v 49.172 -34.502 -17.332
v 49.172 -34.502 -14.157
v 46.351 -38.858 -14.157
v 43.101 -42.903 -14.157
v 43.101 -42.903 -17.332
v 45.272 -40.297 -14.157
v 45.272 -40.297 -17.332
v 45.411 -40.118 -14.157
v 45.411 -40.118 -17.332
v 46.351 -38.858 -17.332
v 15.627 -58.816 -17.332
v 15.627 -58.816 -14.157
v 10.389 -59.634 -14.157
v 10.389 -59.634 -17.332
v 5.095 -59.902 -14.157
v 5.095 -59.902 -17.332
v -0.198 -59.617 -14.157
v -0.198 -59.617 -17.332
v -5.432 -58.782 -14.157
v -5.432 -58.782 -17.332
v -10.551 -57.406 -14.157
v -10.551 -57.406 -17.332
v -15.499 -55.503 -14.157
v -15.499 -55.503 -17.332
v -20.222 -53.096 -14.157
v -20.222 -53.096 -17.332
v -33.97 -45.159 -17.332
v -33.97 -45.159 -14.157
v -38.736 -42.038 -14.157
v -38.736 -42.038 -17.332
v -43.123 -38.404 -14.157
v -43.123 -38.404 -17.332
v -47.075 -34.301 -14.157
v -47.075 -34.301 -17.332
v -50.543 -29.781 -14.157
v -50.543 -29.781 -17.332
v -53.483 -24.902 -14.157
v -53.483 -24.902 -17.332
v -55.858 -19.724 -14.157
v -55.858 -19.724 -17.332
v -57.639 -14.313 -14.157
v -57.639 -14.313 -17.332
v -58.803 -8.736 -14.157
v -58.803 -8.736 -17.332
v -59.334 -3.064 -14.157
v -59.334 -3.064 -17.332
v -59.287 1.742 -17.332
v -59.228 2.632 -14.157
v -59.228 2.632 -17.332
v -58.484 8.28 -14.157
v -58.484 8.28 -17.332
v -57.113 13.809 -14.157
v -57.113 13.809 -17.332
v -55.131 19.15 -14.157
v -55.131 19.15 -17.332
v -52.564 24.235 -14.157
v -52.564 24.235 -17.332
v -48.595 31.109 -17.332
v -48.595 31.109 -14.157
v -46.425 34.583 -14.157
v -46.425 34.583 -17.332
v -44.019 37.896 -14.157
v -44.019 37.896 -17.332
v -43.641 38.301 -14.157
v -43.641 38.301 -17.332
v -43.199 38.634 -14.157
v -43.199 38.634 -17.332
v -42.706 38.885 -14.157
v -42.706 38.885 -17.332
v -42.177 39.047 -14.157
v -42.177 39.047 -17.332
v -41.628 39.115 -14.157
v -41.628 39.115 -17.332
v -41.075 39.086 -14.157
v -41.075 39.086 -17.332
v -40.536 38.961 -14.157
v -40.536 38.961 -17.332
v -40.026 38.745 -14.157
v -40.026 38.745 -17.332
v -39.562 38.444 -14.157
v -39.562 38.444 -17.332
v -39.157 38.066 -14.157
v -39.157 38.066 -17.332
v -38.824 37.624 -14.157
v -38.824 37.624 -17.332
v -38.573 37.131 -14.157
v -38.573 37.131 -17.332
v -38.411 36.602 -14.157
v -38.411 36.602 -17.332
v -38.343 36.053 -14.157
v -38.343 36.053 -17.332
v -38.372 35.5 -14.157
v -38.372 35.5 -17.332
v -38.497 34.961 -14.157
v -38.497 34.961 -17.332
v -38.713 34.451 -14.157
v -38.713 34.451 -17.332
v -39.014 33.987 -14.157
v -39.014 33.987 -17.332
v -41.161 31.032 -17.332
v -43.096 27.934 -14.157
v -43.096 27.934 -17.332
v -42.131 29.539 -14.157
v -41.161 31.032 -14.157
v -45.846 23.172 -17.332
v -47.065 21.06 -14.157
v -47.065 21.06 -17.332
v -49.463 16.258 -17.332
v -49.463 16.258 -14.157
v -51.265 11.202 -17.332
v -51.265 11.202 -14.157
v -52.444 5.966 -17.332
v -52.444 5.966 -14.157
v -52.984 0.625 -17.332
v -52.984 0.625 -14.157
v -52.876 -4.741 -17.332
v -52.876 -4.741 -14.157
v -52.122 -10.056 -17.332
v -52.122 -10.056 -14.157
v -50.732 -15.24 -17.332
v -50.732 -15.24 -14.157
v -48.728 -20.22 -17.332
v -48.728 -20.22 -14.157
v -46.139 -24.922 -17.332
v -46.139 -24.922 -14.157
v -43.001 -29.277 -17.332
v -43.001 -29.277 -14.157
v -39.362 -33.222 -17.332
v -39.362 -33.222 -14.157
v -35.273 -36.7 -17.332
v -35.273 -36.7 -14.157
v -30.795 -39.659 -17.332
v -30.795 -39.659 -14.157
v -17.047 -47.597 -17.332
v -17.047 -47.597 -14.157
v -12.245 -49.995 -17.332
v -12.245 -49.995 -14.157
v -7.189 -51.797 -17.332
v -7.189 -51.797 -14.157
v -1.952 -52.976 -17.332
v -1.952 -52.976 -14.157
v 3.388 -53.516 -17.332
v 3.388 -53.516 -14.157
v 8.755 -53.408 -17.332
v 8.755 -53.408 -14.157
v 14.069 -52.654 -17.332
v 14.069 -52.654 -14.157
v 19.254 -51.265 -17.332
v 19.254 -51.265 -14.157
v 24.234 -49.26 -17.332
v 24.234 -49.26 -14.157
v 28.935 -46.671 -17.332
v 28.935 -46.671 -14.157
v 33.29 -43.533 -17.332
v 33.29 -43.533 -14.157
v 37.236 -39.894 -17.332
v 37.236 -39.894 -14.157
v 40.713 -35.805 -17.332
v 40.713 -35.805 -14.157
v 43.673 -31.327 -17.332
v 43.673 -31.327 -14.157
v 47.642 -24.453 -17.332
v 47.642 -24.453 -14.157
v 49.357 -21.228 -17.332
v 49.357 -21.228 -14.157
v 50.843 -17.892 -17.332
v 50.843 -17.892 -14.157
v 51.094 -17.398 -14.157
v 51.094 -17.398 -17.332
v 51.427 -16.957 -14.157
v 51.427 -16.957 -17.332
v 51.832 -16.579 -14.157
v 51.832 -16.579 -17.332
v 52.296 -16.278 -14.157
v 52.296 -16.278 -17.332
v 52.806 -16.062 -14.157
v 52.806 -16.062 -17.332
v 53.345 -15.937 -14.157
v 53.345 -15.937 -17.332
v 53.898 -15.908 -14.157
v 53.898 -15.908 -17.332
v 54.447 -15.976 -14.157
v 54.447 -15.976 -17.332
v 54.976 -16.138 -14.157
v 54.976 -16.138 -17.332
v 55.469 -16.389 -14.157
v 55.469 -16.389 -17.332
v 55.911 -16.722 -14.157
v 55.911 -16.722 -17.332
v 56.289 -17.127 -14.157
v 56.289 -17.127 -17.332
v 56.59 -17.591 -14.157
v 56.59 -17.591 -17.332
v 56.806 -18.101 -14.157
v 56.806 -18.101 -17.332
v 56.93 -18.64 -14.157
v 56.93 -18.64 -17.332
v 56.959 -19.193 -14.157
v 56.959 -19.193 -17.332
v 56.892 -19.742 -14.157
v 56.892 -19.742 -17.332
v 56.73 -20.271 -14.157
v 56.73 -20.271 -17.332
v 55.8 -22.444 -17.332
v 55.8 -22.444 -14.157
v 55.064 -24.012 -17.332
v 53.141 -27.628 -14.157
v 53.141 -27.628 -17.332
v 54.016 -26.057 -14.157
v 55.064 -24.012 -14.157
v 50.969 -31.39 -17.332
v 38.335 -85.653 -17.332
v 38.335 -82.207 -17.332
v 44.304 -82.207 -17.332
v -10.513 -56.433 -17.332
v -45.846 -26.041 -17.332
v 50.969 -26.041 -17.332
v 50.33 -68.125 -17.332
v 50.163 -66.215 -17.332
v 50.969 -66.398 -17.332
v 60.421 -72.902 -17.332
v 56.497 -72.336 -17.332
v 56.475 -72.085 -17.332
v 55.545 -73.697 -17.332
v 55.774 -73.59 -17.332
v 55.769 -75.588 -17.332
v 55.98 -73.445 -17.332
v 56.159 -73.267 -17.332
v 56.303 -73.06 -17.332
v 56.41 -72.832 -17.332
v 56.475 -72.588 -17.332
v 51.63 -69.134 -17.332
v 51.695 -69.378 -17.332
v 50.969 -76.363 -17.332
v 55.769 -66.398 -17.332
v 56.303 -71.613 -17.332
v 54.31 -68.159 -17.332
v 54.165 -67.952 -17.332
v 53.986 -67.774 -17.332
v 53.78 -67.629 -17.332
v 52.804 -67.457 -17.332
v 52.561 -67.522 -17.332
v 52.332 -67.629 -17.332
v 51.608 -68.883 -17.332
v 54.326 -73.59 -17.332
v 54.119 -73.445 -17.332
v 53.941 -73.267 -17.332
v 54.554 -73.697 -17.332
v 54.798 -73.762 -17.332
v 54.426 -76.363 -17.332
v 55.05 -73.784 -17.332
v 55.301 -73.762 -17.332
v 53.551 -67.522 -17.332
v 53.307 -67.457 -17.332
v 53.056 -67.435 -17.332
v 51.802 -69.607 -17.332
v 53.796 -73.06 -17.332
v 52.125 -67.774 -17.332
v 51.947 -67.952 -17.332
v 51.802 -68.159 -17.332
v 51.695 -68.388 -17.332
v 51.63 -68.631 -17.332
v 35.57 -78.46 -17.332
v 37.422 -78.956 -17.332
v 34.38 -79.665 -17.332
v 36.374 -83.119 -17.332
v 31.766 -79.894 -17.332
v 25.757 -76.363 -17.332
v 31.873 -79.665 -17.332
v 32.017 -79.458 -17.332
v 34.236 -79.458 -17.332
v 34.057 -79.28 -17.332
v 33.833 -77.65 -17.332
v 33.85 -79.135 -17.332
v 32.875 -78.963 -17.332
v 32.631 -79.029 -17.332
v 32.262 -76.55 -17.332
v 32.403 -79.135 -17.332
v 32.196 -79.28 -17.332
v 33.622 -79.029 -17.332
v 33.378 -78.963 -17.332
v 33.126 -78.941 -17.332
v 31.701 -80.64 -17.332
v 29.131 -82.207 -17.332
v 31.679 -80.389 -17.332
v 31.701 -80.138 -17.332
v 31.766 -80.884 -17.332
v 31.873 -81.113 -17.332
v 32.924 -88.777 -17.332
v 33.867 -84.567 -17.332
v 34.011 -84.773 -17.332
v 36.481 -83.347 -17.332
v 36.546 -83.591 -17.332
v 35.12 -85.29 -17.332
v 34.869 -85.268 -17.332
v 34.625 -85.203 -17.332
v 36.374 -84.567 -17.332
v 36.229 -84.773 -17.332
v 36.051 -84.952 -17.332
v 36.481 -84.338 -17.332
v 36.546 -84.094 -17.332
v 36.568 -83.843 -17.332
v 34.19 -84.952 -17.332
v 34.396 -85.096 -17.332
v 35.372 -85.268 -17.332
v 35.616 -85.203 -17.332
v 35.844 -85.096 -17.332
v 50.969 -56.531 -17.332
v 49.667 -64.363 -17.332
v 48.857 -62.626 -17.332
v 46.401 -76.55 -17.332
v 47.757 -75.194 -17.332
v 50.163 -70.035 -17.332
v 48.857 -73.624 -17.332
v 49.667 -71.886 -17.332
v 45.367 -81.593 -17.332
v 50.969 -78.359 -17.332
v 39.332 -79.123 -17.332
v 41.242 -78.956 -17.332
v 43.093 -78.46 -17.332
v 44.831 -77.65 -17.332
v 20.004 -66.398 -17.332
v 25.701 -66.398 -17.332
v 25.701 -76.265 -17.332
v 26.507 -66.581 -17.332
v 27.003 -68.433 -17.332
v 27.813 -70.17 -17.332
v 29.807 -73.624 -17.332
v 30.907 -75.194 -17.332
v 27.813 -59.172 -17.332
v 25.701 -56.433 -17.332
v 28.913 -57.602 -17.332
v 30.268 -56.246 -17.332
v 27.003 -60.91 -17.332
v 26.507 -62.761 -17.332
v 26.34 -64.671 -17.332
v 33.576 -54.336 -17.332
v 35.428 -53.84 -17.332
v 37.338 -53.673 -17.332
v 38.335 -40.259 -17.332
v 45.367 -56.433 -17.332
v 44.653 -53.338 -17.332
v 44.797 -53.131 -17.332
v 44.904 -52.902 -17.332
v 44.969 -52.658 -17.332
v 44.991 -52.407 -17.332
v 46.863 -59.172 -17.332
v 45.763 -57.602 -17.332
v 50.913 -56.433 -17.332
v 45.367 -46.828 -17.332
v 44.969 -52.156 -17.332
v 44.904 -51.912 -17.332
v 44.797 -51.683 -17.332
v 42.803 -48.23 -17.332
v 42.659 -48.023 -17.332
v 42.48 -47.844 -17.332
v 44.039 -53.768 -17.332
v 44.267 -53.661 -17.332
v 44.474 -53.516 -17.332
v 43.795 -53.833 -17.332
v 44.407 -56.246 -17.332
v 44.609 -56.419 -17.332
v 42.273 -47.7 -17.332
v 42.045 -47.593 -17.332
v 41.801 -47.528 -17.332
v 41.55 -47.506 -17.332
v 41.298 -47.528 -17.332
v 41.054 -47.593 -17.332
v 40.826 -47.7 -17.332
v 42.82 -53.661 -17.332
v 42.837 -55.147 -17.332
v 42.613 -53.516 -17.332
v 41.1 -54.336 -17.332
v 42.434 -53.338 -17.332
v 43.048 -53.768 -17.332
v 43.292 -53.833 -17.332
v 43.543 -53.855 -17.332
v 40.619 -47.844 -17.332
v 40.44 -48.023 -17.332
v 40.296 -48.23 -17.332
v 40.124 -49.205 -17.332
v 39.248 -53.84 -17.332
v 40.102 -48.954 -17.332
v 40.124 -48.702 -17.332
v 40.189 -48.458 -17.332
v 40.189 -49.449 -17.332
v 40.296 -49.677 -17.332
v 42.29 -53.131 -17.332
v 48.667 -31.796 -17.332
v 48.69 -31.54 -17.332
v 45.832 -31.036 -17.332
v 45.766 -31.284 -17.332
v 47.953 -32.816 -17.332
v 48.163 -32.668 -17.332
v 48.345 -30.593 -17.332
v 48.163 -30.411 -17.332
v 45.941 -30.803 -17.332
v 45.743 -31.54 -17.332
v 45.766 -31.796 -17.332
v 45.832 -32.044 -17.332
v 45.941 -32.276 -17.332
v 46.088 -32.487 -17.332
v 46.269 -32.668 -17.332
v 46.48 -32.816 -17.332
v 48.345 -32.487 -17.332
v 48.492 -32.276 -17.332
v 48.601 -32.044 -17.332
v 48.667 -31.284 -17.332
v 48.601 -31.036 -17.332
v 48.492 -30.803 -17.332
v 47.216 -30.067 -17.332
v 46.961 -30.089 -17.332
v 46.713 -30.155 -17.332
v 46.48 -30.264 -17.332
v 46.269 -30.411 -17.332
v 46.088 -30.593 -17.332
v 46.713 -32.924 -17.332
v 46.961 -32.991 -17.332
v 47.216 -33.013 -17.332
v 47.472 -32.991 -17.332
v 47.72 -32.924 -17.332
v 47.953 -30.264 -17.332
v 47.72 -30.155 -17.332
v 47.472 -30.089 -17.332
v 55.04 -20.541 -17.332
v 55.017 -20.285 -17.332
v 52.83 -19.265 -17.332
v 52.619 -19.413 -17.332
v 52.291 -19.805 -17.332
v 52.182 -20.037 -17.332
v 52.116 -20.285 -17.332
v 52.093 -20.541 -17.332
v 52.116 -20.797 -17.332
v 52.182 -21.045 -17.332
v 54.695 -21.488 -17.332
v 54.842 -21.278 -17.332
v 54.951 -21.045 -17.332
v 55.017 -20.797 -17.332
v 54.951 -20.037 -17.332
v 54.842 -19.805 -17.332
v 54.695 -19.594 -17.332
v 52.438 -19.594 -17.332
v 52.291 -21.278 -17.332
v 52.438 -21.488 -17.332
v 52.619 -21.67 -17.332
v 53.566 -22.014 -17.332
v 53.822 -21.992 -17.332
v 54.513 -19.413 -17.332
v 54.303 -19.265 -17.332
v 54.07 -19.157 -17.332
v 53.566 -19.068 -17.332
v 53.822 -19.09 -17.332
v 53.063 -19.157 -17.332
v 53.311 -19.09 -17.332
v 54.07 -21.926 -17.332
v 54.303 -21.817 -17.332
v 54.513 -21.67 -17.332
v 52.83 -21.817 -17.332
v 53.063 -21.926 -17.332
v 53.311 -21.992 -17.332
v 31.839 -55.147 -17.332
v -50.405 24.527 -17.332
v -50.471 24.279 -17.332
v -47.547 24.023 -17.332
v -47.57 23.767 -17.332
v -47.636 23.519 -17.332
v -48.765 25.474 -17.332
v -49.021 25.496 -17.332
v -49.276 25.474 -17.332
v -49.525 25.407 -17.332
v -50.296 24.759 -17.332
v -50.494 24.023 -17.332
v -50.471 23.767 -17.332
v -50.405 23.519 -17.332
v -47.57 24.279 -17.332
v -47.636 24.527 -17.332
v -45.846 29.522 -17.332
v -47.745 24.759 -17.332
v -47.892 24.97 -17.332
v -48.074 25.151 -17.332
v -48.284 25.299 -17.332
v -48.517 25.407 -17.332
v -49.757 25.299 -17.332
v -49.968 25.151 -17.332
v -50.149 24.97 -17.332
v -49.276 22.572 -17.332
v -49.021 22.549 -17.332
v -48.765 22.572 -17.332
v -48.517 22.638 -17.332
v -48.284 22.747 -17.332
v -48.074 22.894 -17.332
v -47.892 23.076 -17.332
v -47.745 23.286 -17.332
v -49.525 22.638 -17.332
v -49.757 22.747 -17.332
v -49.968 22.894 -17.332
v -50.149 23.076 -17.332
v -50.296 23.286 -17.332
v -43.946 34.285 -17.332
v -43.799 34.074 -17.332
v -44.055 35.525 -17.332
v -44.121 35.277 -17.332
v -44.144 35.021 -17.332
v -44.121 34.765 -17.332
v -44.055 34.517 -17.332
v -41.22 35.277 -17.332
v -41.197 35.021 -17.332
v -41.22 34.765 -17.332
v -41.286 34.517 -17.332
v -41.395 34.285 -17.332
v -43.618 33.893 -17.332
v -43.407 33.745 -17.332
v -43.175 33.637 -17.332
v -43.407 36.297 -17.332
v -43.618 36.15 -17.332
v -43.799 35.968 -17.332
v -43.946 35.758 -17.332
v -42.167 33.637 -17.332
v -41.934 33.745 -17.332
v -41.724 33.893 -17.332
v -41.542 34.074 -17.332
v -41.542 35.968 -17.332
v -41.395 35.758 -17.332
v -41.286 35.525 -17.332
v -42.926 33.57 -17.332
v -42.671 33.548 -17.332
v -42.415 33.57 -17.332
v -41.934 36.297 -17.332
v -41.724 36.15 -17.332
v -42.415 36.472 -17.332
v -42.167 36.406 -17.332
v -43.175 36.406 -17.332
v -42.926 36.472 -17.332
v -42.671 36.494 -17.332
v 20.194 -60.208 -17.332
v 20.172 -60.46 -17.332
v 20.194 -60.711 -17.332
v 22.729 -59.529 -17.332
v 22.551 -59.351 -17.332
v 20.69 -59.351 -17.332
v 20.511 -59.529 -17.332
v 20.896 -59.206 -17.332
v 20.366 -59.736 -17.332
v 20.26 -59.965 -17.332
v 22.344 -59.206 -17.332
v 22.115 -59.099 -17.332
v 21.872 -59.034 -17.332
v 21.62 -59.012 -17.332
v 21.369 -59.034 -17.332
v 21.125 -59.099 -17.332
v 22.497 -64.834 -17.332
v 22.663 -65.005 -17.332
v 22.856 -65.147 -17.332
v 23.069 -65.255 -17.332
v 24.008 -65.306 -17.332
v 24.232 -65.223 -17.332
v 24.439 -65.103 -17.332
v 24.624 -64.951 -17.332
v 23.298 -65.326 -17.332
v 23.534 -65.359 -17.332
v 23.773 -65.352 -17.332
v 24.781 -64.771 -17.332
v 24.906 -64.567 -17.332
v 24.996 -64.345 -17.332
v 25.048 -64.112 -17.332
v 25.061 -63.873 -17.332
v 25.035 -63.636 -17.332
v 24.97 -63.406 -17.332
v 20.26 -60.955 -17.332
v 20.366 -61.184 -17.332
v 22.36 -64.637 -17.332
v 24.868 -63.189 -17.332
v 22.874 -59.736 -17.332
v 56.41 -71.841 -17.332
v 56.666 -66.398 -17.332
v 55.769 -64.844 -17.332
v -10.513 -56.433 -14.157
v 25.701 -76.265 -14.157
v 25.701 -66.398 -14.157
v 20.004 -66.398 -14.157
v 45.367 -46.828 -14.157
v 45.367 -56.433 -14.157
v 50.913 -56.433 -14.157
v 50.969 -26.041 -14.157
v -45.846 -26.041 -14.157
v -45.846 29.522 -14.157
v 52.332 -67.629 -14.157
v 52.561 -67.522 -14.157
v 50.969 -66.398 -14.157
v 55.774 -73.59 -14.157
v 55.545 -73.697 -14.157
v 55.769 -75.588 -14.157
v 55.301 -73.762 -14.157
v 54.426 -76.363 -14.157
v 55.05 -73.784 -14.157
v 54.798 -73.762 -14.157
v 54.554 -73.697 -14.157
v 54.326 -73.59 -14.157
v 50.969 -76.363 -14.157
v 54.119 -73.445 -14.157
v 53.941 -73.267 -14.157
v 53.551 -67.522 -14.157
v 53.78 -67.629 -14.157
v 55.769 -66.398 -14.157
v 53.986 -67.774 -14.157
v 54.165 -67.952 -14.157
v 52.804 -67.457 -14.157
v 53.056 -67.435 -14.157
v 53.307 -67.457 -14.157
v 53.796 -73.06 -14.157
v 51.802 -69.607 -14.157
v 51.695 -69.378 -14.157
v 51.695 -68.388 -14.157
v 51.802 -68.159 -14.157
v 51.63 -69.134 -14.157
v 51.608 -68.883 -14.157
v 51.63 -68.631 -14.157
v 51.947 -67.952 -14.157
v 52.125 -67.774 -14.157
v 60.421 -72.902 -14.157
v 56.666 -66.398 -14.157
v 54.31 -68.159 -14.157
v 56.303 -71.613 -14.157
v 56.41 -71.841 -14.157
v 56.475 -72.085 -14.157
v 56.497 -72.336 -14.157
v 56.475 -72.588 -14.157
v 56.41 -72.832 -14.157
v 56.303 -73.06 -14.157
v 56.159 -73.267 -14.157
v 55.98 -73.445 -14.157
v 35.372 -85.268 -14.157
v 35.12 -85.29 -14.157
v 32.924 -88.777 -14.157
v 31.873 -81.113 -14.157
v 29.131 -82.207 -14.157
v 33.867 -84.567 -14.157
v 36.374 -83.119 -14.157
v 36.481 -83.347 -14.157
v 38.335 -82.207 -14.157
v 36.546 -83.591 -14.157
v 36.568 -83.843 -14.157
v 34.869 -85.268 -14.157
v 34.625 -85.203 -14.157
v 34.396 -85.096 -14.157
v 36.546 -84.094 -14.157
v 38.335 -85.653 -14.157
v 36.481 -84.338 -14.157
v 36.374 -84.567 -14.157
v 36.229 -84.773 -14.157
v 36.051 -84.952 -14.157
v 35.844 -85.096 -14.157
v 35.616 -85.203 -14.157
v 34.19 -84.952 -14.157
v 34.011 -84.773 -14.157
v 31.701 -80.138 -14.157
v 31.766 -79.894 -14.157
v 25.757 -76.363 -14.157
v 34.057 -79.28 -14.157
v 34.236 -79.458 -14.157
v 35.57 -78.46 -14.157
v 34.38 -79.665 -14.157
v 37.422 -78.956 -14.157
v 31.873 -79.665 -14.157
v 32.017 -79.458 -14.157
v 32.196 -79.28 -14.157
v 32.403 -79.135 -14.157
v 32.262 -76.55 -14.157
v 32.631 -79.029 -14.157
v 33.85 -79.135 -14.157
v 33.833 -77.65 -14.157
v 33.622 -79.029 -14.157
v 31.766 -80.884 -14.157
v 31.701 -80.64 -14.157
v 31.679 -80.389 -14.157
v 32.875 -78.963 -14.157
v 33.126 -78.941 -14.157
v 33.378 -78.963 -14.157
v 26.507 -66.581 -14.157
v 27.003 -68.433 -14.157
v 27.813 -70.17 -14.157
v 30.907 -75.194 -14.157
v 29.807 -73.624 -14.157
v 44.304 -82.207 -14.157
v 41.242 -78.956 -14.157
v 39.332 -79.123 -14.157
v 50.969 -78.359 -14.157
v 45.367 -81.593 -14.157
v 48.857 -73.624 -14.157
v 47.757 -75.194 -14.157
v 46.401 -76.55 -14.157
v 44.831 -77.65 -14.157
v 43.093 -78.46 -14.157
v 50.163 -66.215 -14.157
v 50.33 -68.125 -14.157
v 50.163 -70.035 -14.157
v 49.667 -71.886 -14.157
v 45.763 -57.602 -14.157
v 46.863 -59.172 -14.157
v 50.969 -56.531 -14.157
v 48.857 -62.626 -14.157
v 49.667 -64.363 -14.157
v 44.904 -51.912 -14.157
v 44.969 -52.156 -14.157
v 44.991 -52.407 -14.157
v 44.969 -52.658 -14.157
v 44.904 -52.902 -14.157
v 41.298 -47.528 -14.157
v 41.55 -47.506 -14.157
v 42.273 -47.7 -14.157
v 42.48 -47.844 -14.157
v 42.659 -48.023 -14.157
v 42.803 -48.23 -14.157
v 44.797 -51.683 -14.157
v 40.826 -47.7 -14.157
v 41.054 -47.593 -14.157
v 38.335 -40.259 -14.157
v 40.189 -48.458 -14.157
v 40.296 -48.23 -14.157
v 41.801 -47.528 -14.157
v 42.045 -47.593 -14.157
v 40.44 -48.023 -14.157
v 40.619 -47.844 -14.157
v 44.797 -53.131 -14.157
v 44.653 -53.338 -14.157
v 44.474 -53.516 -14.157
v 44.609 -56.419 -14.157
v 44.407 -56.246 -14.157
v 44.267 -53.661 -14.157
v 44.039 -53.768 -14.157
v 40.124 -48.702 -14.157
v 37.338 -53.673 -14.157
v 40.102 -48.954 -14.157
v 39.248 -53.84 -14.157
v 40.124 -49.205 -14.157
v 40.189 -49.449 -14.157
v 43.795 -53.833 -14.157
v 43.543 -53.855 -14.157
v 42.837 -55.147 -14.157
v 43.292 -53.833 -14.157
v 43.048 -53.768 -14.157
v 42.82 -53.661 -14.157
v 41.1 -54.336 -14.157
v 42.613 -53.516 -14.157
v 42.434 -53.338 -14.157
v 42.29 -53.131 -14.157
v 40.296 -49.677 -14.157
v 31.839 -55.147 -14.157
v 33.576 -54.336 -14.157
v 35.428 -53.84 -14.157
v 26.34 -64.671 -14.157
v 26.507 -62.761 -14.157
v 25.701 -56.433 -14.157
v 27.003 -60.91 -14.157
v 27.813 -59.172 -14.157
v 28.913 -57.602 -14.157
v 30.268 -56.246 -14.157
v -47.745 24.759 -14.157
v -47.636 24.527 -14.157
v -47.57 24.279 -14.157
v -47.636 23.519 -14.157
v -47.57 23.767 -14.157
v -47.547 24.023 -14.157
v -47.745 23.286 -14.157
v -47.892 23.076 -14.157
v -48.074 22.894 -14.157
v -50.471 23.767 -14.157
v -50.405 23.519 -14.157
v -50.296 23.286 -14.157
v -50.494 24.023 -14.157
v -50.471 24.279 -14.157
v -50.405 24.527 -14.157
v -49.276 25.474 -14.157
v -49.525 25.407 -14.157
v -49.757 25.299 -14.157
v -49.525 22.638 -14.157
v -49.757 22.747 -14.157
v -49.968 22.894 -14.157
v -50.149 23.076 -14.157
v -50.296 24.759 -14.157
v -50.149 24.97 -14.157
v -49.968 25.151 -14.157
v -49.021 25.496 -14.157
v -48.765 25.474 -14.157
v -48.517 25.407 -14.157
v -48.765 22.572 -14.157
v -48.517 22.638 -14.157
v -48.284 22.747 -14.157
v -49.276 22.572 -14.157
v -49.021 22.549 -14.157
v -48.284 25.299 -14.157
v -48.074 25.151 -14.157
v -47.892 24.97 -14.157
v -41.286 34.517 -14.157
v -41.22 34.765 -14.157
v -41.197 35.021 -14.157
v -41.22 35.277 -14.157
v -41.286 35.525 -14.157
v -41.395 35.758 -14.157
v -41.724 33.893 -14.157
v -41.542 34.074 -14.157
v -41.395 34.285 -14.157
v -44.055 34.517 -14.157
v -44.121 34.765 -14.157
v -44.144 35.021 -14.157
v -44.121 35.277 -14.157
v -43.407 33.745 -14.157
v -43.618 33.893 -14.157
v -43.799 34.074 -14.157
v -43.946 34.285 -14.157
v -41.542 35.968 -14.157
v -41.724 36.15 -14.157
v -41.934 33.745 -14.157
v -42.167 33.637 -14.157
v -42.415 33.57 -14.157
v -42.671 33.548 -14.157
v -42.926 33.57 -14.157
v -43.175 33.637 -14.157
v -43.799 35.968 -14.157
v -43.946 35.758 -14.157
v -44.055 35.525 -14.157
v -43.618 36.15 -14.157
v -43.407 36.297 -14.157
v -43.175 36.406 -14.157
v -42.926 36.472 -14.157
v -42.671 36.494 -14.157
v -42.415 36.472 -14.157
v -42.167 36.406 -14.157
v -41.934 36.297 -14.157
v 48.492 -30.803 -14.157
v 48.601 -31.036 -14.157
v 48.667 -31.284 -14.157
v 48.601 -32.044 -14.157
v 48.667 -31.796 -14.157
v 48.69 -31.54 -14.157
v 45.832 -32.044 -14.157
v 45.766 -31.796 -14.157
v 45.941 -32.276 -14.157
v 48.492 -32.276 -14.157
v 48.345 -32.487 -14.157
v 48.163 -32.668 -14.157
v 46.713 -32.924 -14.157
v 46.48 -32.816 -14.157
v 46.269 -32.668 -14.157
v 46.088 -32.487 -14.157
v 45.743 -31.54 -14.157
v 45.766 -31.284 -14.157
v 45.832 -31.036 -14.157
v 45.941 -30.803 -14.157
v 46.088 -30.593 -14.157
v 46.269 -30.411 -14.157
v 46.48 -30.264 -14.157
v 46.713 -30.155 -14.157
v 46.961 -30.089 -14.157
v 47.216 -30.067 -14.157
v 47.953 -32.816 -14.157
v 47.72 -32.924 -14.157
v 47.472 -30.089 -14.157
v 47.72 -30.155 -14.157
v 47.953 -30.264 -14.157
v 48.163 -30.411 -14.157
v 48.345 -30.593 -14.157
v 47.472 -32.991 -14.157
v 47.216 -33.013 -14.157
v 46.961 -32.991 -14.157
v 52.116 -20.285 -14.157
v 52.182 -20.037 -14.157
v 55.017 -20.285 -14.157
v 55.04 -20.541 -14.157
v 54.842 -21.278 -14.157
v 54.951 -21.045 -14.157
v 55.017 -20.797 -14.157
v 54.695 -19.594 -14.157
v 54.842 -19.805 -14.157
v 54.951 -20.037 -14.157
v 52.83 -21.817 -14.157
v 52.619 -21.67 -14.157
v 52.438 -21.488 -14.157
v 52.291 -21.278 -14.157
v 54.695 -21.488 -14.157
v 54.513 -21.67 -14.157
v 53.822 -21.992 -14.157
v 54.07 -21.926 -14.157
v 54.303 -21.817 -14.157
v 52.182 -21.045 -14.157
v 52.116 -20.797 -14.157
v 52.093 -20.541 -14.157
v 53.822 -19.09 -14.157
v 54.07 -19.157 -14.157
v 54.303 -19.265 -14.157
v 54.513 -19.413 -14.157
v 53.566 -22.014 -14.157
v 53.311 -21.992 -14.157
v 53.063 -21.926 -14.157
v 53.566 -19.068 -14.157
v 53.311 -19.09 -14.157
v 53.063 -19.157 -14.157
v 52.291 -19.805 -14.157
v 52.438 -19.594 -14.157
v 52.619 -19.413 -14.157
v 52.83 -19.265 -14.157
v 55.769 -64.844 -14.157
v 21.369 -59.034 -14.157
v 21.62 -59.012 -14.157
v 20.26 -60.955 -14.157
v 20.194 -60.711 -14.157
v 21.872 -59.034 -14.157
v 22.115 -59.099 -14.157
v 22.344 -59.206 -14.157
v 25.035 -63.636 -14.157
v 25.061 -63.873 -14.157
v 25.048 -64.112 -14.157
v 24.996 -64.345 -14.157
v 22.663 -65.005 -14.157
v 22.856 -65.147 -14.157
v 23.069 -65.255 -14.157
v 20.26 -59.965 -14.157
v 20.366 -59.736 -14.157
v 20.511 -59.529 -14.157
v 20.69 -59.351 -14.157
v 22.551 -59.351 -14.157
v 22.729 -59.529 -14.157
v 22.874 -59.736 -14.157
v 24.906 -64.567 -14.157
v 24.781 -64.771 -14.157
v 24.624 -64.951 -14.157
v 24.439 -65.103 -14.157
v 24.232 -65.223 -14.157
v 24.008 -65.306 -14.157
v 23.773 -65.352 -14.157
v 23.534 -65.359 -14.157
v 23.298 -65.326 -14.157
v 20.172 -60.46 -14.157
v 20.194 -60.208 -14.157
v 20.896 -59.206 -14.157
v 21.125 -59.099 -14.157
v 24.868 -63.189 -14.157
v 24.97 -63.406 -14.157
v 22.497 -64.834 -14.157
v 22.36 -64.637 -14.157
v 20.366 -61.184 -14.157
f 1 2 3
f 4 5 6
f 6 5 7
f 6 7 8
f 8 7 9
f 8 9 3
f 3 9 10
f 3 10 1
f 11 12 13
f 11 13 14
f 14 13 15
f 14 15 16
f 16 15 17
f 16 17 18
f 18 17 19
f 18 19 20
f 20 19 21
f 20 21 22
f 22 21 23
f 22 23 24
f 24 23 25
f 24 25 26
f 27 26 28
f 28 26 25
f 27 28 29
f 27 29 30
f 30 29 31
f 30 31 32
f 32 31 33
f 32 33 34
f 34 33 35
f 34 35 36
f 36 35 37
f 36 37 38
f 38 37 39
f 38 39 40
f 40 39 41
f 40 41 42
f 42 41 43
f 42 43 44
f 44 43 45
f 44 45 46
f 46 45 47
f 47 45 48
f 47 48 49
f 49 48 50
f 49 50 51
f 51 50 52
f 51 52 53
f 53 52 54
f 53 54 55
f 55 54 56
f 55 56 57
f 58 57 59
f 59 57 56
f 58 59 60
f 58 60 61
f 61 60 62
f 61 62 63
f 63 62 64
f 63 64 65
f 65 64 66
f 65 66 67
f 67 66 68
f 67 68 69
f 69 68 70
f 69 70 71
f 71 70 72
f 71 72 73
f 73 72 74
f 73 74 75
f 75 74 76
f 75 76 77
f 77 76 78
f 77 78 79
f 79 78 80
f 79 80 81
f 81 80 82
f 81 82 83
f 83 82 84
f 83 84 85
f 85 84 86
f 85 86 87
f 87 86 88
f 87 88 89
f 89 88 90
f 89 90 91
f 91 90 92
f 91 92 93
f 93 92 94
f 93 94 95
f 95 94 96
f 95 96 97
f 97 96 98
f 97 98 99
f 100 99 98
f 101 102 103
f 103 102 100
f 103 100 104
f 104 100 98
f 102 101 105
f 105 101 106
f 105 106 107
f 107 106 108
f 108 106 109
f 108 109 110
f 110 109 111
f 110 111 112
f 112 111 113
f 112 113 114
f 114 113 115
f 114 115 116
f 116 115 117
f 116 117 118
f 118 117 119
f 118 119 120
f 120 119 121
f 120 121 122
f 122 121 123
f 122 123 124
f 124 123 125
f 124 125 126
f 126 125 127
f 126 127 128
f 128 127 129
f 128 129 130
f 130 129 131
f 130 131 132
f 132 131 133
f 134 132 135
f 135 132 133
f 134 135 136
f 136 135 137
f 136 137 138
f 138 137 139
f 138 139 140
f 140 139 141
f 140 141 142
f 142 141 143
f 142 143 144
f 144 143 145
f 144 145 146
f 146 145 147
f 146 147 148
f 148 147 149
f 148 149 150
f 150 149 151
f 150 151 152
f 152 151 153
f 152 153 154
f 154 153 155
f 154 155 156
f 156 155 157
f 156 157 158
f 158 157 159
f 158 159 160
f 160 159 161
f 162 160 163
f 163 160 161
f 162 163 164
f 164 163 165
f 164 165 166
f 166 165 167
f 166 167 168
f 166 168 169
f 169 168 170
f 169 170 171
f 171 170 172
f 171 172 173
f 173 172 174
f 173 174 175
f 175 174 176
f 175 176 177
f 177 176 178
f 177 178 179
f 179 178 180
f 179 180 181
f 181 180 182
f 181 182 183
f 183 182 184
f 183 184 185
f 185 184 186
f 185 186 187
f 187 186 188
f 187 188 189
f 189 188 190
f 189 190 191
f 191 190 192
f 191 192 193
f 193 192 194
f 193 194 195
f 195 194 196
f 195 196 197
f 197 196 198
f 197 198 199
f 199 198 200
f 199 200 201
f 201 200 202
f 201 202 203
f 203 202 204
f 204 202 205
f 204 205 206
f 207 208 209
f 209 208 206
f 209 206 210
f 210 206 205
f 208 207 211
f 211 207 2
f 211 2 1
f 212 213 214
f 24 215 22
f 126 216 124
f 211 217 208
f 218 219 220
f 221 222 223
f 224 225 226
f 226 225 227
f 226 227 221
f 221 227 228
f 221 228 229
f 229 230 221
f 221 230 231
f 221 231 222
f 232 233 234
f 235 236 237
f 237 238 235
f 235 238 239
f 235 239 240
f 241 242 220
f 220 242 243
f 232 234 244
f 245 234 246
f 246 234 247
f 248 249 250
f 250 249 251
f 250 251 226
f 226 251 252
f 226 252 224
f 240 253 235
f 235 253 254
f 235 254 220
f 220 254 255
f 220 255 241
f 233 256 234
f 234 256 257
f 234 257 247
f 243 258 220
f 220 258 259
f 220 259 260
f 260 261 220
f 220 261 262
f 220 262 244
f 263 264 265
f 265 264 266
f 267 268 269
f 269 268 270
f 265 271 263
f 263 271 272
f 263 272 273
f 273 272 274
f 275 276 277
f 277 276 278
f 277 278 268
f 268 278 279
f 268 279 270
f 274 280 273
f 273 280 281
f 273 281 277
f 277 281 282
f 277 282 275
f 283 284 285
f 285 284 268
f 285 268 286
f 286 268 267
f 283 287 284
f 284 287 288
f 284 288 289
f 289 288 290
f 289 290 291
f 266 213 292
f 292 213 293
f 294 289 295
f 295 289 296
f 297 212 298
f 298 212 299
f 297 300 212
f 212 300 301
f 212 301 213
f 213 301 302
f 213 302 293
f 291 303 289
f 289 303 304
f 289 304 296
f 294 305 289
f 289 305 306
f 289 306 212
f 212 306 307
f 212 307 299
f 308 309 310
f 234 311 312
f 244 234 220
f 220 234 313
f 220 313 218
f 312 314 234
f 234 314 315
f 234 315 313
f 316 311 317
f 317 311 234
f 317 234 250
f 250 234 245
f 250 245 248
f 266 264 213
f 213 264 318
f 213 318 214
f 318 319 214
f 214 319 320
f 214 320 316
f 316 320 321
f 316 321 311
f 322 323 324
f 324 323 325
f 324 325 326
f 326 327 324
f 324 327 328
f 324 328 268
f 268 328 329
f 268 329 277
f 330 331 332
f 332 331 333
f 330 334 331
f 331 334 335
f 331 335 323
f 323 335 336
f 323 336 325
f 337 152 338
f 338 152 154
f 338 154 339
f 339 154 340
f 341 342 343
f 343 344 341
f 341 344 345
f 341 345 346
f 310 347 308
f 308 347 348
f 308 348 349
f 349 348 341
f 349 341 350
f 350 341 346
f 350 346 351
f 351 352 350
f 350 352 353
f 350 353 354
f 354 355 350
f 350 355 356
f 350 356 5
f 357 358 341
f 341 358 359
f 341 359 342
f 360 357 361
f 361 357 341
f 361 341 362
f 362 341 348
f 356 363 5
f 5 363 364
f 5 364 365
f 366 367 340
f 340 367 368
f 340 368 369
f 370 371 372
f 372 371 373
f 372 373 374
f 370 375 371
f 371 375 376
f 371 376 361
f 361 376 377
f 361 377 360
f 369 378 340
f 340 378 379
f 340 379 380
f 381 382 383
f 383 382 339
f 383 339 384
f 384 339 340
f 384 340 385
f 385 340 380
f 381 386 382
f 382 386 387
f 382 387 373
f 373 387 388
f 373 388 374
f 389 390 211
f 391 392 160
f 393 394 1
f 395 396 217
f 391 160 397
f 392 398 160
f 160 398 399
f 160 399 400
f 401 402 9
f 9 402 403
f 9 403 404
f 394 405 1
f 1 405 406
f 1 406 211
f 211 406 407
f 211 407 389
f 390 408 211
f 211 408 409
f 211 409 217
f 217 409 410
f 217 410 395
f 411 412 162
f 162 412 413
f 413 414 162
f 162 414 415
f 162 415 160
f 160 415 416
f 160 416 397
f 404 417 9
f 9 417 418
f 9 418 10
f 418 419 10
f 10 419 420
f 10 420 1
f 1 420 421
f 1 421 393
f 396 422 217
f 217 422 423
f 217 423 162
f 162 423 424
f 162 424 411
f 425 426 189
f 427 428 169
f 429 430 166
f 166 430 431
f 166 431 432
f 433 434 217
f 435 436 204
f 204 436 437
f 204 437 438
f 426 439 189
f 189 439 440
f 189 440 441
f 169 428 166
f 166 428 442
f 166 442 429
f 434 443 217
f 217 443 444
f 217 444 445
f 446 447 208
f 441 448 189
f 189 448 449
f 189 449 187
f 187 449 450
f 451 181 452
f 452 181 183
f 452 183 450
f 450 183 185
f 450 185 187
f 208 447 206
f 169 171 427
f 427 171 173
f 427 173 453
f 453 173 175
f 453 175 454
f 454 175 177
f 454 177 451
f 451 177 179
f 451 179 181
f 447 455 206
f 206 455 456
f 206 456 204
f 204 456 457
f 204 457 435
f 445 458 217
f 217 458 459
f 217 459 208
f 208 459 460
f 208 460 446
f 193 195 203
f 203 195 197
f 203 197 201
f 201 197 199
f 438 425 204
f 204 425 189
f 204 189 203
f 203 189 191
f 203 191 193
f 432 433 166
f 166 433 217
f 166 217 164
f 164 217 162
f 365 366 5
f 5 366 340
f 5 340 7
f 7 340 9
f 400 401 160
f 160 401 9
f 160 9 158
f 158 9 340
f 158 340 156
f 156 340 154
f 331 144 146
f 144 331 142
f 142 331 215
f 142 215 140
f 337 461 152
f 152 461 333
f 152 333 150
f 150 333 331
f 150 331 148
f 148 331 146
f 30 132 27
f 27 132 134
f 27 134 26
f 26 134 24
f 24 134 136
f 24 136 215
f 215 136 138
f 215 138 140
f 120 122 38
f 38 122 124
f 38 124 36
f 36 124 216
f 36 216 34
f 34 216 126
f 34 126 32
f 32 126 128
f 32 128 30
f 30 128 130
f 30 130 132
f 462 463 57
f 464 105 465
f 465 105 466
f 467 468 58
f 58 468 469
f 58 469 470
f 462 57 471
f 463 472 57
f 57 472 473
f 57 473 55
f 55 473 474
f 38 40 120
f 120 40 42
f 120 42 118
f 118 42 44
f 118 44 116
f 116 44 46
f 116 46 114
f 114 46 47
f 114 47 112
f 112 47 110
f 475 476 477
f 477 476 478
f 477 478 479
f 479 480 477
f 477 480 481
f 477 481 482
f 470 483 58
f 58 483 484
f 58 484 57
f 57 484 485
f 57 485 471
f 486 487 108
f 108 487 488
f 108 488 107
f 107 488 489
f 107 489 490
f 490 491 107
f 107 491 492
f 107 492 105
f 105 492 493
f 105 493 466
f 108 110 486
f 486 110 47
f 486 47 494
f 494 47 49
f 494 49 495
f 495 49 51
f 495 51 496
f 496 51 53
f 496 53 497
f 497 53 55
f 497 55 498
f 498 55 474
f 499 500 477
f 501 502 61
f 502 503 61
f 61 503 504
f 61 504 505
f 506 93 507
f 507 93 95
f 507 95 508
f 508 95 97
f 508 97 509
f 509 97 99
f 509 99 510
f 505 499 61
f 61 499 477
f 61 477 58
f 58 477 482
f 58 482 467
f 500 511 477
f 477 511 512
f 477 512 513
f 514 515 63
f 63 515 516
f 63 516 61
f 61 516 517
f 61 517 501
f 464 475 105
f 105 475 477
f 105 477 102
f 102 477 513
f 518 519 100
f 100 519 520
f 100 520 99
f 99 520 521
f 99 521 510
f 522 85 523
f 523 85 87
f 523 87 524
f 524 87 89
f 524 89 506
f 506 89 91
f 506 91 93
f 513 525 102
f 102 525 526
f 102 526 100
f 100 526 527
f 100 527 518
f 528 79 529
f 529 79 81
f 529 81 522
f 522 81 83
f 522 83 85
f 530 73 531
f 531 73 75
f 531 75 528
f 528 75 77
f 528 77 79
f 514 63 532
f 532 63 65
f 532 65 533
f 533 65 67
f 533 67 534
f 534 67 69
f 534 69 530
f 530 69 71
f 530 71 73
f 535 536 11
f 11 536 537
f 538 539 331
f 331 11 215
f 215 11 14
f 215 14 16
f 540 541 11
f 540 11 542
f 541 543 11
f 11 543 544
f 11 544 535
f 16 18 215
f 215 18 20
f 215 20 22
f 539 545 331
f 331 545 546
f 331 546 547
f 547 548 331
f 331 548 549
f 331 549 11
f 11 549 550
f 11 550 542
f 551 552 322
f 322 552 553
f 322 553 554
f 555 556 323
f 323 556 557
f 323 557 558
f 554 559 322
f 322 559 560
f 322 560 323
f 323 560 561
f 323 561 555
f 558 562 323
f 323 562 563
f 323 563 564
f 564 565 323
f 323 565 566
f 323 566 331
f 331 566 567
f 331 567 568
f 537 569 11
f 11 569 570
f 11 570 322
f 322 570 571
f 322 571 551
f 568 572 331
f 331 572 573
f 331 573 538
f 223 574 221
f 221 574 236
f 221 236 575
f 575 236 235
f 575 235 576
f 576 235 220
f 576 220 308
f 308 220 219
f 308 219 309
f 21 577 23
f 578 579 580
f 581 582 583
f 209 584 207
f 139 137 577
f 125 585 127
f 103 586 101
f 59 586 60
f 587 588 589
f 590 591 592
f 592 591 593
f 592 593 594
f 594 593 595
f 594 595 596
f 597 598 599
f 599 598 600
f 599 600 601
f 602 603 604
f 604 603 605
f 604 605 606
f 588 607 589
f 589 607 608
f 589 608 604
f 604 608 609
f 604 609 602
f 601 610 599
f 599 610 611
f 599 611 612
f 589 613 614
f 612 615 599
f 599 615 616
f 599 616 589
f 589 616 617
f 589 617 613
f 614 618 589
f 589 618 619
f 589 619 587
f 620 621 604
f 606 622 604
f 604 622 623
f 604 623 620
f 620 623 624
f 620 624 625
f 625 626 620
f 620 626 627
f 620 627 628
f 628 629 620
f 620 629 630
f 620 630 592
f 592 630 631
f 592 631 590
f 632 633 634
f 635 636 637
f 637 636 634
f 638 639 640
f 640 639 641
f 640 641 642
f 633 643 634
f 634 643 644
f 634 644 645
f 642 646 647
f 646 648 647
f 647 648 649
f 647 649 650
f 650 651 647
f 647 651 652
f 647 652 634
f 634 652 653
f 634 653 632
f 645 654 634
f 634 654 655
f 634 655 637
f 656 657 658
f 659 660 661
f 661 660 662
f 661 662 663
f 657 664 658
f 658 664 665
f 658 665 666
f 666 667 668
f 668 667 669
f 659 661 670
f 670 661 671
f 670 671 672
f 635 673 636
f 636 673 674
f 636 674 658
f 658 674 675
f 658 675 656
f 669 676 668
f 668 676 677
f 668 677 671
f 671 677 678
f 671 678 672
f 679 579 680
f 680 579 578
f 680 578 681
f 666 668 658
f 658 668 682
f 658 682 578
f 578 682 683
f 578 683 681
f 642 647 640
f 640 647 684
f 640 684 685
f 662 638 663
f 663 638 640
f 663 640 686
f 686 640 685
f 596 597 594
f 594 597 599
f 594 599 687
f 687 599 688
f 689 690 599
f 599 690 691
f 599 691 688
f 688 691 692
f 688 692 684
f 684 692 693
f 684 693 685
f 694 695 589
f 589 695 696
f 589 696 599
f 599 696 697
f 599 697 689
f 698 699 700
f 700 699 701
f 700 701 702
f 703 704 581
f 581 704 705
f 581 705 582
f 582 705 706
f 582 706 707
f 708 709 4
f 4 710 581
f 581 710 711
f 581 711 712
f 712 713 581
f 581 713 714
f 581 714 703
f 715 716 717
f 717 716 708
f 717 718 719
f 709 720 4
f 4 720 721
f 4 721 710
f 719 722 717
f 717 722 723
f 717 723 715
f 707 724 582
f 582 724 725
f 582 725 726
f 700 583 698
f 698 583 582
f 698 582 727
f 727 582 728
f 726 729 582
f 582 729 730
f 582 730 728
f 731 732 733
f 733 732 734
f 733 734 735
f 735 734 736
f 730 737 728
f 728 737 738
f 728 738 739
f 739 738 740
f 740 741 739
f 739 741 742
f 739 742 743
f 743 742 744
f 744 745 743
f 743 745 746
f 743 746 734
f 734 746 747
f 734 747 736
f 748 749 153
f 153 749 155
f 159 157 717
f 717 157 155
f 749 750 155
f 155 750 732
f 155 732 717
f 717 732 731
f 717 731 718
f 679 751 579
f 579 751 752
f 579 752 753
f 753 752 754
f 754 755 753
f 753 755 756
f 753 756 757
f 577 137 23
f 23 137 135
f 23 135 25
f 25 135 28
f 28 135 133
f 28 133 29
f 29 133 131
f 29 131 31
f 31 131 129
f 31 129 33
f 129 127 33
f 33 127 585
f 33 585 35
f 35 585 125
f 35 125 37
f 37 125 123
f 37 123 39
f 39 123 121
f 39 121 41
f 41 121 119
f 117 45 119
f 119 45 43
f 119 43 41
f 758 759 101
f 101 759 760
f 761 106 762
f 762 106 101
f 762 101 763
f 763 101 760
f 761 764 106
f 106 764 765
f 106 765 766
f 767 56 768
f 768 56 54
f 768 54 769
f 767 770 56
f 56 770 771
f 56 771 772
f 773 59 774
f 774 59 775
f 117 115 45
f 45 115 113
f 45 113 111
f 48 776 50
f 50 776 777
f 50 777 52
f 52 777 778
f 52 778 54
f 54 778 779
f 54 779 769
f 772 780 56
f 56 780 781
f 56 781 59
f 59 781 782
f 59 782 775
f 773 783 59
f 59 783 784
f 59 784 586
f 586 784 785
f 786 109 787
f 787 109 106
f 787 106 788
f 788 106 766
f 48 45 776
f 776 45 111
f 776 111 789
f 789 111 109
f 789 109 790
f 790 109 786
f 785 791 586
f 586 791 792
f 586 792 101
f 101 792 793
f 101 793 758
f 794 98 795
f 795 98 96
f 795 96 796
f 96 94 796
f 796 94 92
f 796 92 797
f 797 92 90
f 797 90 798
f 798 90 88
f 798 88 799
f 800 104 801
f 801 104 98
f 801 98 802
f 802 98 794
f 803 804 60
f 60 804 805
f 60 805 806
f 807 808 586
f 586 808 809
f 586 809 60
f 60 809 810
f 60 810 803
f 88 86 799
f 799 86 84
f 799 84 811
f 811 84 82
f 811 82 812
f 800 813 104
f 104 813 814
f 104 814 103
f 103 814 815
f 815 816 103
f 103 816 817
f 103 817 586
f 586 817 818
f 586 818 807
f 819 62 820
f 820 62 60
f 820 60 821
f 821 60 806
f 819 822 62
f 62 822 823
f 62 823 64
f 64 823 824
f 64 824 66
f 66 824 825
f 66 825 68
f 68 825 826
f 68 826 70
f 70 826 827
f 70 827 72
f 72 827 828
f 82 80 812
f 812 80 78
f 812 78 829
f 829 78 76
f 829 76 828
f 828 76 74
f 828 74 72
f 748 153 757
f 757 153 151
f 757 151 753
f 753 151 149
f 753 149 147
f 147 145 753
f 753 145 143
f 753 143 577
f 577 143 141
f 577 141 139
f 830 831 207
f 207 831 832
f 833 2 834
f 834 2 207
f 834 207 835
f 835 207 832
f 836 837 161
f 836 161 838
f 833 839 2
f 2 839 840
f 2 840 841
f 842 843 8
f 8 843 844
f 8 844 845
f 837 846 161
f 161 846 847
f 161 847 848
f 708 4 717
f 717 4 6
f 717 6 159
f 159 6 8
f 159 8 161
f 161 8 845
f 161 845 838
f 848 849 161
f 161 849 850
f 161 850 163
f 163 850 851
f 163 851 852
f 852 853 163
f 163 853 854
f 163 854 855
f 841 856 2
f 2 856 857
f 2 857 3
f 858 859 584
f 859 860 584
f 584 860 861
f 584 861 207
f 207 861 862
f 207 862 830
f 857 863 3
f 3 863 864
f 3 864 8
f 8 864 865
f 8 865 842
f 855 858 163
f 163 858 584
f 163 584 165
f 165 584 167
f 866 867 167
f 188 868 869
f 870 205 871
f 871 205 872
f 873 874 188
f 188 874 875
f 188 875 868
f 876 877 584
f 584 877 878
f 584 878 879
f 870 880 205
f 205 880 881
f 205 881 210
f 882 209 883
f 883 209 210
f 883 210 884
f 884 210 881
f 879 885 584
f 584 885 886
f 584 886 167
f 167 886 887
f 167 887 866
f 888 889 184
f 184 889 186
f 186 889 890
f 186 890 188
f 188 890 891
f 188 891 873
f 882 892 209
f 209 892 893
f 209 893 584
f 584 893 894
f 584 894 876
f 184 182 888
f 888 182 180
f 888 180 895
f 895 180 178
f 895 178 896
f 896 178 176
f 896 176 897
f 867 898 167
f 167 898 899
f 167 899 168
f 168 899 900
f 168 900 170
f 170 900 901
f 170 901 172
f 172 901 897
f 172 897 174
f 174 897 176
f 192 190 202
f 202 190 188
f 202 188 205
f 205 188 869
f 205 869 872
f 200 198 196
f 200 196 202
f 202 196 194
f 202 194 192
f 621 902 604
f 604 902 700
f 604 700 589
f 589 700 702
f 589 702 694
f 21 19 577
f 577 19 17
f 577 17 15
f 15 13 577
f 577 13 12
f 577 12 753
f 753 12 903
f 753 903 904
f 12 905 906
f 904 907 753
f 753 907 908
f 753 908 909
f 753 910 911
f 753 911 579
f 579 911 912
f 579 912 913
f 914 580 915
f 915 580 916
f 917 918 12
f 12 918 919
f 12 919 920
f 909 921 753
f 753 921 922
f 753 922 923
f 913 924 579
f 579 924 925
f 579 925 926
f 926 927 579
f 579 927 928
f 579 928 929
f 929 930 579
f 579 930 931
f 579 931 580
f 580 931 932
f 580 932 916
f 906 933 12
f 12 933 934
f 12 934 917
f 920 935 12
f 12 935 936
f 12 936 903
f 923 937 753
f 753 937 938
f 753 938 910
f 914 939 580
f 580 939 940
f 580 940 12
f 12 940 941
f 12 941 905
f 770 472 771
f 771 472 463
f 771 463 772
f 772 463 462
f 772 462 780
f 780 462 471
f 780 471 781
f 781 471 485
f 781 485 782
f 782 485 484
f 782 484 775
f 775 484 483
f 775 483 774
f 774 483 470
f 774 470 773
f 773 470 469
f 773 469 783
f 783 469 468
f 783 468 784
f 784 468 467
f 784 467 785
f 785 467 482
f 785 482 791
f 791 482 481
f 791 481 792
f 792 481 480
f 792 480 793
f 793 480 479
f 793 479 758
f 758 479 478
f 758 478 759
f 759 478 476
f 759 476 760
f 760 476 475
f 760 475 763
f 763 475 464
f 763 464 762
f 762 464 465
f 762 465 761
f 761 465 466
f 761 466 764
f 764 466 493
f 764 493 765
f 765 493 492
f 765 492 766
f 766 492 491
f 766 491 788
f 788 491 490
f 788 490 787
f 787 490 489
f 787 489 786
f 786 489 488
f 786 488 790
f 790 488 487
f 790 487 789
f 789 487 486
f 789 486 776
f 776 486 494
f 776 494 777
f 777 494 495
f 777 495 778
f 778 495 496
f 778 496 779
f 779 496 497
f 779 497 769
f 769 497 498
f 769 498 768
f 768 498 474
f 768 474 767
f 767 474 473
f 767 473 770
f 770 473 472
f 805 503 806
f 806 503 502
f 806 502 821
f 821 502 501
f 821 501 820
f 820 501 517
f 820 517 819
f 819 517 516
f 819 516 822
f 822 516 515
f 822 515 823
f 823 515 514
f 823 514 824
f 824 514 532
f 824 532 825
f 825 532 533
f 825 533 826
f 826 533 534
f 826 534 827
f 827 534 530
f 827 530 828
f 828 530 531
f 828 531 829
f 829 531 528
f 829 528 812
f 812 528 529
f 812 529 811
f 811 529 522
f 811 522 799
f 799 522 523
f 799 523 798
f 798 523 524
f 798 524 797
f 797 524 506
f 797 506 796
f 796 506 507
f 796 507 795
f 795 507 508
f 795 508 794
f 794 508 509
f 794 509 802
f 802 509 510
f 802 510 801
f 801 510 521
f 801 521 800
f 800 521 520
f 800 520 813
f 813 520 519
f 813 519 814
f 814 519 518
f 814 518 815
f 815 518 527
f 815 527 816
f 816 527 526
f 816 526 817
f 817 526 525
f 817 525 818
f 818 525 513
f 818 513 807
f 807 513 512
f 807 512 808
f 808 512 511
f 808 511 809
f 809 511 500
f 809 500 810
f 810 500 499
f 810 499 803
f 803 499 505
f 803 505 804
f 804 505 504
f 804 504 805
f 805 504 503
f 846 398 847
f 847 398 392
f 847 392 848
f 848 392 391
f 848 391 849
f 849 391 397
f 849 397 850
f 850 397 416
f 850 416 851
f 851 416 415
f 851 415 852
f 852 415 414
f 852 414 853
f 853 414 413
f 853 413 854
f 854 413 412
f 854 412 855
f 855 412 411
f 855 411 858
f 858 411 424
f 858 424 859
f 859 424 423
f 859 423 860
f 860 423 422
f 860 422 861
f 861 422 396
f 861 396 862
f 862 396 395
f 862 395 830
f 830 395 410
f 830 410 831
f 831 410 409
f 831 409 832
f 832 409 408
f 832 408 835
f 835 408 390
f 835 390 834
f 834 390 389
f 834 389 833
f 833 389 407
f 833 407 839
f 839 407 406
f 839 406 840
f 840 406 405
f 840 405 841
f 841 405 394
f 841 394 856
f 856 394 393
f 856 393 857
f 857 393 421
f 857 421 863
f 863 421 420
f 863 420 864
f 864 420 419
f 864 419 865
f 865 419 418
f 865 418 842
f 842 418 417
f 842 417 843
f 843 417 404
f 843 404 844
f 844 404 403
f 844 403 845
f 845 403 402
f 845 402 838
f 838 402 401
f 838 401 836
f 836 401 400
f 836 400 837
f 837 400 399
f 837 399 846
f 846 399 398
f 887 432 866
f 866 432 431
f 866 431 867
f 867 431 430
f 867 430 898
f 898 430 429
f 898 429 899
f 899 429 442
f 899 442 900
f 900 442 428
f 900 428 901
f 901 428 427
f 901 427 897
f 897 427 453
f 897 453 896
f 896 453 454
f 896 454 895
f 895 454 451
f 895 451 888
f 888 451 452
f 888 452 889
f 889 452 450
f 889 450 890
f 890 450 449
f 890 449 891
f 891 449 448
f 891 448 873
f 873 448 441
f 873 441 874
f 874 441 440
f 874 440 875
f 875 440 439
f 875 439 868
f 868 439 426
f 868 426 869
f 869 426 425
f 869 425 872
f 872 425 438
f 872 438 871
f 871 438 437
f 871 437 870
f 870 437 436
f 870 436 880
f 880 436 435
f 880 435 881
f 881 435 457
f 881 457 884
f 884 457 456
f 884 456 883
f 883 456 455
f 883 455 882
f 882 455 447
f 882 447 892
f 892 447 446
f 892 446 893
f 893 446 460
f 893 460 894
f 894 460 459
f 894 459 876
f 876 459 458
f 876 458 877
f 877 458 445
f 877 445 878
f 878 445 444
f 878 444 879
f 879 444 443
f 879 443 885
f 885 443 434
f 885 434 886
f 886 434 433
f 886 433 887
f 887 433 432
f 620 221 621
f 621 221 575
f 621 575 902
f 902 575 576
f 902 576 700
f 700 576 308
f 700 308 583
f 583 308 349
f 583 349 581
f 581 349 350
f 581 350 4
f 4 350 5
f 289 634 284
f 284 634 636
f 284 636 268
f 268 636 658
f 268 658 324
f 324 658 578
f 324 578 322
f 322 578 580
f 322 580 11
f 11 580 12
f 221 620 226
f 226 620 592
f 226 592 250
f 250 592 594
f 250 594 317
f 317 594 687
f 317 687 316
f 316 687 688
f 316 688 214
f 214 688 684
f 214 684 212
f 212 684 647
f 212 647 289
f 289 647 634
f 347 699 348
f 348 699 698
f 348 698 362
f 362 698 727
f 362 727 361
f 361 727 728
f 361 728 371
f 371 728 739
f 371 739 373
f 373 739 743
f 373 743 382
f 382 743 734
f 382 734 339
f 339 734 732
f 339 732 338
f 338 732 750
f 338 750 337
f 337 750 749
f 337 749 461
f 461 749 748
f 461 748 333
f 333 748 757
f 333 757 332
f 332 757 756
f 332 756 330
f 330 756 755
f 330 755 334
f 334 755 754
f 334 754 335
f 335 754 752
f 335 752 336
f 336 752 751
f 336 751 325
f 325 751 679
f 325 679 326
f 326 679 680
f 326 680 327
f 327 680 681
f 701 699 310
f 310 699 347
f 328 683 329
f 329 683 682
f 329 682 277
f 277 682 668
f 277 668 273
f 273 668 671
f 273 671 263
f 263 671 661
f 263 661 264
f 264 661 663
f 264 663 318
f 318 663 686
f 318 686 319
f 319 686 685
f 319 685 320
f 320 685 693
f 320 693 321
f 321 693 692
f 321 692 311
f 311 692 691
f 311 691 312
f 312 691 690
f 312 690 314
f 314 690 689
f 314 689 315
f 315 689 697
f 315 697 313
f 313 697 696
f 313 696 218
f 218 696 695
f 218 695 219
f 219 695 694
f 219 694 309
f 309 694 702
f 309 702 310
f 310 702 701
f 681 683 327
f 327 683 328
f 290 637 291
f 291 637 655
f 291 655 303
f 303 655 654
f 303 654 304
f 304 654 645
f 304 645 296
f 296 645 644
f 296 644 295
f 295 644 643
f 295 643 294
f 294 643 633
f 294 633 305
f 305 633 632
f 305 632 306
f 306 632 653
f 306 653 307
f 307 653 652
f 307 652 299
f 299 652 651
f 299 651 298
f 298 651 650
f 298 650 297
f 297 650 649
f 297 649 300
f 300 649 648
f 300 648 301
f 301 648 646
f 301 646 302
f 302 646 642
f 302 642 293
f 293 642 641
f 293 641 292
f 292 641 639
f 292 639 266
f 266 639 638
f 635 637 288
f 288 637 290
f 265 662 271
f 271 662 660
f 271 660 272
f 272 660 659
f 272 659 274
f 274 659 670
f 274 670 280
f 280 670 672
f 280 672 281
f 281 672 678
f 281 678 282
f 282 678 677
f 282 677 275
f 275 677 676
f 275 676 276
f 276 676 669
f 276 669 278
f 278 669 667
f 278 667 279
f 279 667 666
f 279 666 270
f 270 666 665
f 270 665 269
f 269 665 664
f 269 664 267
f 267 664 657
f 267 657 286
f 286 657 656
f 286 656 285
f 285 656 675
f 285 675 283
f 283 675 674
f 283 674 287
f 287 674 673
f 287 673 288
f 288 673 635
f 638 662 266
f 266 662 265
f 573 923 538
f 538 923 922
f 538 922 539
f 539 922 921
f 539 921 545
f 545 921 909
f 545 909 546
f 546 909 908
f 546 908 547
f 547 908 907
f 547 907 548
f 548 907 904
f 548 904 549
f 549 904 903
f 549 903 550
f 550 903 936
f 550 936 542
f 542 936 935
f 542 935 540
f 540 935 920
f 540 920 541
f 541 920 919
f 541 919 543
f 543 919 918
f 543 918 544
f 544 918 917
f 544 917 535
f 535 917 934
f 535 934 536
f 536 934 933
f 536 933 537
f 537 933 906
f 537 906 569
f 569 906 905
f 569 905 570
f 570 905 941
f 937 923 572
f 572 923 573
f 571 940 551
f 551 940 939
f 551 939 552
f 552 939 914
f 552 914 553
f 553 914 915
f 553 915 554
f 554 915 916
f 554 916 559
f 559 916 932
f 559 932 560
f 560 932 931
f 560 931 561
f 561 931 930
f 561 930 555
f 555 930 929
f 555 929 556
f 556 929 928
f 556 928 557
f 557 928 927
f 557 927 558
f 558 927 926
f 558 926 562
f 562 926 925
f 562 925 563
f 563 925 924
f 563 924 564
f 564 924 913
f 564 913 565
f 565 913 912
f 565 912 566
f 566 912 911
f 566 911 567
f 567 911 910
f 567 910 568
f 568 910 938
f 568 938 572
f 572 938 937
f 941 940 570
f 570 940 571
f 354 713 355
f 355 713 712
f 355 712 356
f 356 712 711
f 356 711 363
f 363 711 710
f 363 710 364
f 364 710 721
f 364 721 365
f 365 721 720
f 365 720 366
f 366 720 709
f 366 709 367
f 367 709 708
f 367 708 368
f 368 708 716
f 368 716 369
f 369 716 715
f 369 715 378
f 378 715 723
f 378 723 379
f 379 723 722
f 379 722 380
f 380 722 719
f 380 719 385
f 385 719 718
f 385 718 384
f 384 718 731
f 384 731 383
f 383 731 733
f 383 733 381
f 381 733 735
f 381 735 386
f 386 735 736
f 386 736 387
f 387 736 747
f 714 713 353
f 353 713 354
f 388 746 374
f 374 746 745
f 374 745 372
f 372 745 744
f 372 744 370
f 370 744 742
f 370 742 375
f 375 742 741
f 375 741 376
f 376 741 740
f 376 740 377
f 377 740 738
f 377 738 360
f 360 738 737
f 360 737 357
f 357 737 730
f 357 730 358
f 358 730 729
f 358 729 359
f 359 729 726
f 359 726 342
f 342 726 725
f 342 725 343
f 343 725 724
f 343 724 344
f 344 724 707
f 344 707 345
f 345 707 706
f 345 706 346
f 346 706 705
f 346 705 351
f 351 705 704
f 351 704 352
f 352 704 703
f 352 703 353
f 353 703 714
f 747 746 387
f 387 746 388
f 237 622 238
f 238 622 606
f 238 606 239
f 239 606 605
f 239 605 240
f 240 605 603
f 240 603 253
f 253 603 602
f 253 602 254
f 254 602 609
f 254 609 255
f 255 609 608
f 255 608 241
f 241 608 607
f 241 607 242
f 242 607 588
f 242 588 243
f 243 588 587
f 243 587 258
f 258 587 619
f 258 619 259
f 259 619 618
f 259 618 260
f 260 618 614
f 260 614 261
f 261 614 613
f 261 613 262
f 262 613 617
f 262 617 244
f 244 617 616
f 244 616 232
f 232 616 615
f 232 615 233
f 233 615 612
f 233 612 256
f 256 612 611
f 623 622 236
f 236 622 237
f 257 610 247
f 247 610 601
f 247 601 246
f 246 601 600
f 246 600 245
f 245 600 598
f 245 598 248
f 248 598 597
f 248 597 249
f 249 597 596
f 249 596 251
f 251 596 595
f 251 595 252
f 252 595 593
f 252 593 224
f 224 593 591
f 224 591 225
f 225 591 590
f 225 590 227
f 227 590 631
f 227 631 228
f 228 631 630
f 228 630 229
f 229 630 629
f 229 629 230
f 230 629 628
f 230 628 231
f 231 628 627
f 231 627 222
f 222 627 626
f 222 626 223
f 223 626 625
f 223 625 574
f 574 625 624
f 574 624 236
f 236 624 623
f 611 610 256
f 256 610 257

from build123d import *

# Parameters (mm, degrees)
BOSS_EXTRUDE1_DEPTH   = 3.175
F_4_CLEARANCE_HOLE1_D = 2.9464
BOSS_EXTRUDE2_DEPTH   = 3.175


with BuildPart() as part:
    # Sketch1 → Boss-Extrude1 (new body)
    with BuildSketch(Plane(origin=(0, 0, -14.15699402), x_dir=(-1, 0, 0), z_dir=(0, 0, -1))):
        with BuildLine():
            Line((-49.172312317, -34.502108483), (-53.141062317, -27.628031841))
            ThreePointArc((-53.141062317, -27.628031841), (-55.063803638, -24.012221257), (-56.72992661, -20.271224785))
            ThreePointArc((-56.72992661, -20.271224785), (-54.976138042, -16.13776671), (-50.842679967, -17.891555277))
            ThreePointArc((-50.842679967, -17.891555277), (-49.356678398, -21.228119699), (-47.641801003, -24.453031841))
            Line((-47.641801003, -24.453031841), (-43.673051003, -31.327108483))
            ThreePointArc((-43.673051003, -31.327108483), (-16.68272836, -52.037511462), (17.046778195, -47.596937682))
            Line((17.046778195, -47.596937682), (23.920854837, -43.628187682))
            Line((23.920854837, -43.628187682), (30.79493148, -39.659437682))
            ThreePointArc((30.79493148, -39.659437682), (51.505334458, -12.669115038), (47.064760678, 21.060391517))
            Line((47.064760678, 21.060391517), (43.096010678, 27.934468159))
            ThreePointArc((43.096010678, 27.934468159), (41.160593535, 31.032051618), (39.01404477, 33.987248938))
            ThreePointArc((39.01404477, 33.987248938), (39.561948355, 38.44382292), (44.018522337, 37.895919335))
            ThreePointArc((44.018522337, 37.895919335), (46.425258832, 34.58251628), (48.595271992, 31.109468159))
            Line((48.595271992, 31.109468159), (52.564021992, 24.235391517))
            ThreePointArc((52.564021992, 24.235391517), (57.638963455, -14.312615975), (33.96993148, -45.158698996))
            Line((33.96993148, -45.158698996), (27.095854837, -49.127448996))
            Line((27.095854837, -49.127448996), (20.221778195, -53.096198996))
            ThreePointArc((20.221778195, -53.096198996), (-18.326229296, -58.171140459), (-49.172312317, -34.502108483))
        make_face()
    extrude(amount=BOSS_EXTRUDE1_DEPTH)

    # #4 Clearance Hole1 (through all)
    with Locations(Plane(origin=(0, 0, -17.33199402), x_dir=(-1, 0, 0), z_dir=(0, 0, -1))):
        with Locations((-53.56643166, -20.541270527), (-47.21643166, -31.539793155), (42.670641335, 35.021229473), (49.020641335, 24.022706845)):
            Hole(F_4_CLEARANCE_HOLE1_D / 2)

    # Sketch6 → Boss-Extrude2 (add)
    with BuildSketch(Plane.XY.offset(-14.15699402)):
        Polygon((60.420653285, -72.901641316), (32.924346715, -88.776641316), (13.712730754, -55.501146376), (41.209037324, -39.626146376), align=None)
        with BuildLine():
            Line((46.862720596, -59.172213053), (48.856620596, -62.625749158))
            ThreePointArc((48.856620596, -62.625749158), (44.831, -77.649569754), (29.807179404, -73.623949158))
            Line((29.807179404, -73.623949158), (27.813279404, -70.170413053))
            ThreePointArc((27.813279404, -70.170413053), (31.8389, -55.146592457), (46.862720596, -59.172213053))
        make_face(mode=Mode.SUBTRACT)
        with BuildLine():
            Line((33.866506919, -84.566510659), (31.872606919, -81.112974554))
            ThreePointArc((31.872606919, -81.112974554), (32.402538499, -79.135242974), (34.380270079, -79.665174554))
            Line((34.380270079, -79.665174554), (36.374170079, -83.118710659))
            ThreePointArc((36.374170079, -83.118710659), (35.844238499, -85.096442239), (33.866506919, -84.566510659))
        make_face(mode=Mode.SUBTRACT)
        with BuildLine():
            Line((22.874070079, -59.735851552), (24.867970079, -63.189387657))
            ThreePointArc((24.867970079, -63.189387657), (24.338038499, -65.167119237), (22.360306919, -64.637187657))
            Line((22.360306919, -64.637187657), (20.366406919, -61.183651552))
            ThreePointArc((20.366406919, -61.183651552), (20.896338499, -59.205919972), (22.874070079, -59.735851552))
        make_face(mode=Mode.SUBTRACT)
        with BuildLine():
            Line((42.803393081, -48.229651552), (44.797293081, -51.683187657))
            ThreePointArc((44.797293081, -51.683187657), (44.267361501, -53.660919237), (42.289629921, -53.130987657))
            Line((42.289629921, -53.130987657), (40.295729921, -49.677451552))
            ThreePointArc((40.295729921, -49.677451552), (40.825661501, -47.699719972), (42.803393081, -48.229651552))
        make_face(mode=Mode.SUBTRACT)
        with BuildLine():
            Line((54.309593081, -68.158974554), (56.303493081, -71.612510659))
            ThreePointArc((56.303493081, -71.612510659), (55.773561501, -73.590242239), (53.795829921, -73.060310659))
            Line((53.795829921, -73.060310659), (51.801929921, -69.606774554))
            ThreePointArc((51.801929921, -69.606774554), (52.331861501, -67.629042974), (54.309593081, -68.158974554))
        make_face(mode=Mode.SUBTRACT)
    extrude(amount=-BOSS_EXTRUDE2_DEPTH)


solid = part.part
